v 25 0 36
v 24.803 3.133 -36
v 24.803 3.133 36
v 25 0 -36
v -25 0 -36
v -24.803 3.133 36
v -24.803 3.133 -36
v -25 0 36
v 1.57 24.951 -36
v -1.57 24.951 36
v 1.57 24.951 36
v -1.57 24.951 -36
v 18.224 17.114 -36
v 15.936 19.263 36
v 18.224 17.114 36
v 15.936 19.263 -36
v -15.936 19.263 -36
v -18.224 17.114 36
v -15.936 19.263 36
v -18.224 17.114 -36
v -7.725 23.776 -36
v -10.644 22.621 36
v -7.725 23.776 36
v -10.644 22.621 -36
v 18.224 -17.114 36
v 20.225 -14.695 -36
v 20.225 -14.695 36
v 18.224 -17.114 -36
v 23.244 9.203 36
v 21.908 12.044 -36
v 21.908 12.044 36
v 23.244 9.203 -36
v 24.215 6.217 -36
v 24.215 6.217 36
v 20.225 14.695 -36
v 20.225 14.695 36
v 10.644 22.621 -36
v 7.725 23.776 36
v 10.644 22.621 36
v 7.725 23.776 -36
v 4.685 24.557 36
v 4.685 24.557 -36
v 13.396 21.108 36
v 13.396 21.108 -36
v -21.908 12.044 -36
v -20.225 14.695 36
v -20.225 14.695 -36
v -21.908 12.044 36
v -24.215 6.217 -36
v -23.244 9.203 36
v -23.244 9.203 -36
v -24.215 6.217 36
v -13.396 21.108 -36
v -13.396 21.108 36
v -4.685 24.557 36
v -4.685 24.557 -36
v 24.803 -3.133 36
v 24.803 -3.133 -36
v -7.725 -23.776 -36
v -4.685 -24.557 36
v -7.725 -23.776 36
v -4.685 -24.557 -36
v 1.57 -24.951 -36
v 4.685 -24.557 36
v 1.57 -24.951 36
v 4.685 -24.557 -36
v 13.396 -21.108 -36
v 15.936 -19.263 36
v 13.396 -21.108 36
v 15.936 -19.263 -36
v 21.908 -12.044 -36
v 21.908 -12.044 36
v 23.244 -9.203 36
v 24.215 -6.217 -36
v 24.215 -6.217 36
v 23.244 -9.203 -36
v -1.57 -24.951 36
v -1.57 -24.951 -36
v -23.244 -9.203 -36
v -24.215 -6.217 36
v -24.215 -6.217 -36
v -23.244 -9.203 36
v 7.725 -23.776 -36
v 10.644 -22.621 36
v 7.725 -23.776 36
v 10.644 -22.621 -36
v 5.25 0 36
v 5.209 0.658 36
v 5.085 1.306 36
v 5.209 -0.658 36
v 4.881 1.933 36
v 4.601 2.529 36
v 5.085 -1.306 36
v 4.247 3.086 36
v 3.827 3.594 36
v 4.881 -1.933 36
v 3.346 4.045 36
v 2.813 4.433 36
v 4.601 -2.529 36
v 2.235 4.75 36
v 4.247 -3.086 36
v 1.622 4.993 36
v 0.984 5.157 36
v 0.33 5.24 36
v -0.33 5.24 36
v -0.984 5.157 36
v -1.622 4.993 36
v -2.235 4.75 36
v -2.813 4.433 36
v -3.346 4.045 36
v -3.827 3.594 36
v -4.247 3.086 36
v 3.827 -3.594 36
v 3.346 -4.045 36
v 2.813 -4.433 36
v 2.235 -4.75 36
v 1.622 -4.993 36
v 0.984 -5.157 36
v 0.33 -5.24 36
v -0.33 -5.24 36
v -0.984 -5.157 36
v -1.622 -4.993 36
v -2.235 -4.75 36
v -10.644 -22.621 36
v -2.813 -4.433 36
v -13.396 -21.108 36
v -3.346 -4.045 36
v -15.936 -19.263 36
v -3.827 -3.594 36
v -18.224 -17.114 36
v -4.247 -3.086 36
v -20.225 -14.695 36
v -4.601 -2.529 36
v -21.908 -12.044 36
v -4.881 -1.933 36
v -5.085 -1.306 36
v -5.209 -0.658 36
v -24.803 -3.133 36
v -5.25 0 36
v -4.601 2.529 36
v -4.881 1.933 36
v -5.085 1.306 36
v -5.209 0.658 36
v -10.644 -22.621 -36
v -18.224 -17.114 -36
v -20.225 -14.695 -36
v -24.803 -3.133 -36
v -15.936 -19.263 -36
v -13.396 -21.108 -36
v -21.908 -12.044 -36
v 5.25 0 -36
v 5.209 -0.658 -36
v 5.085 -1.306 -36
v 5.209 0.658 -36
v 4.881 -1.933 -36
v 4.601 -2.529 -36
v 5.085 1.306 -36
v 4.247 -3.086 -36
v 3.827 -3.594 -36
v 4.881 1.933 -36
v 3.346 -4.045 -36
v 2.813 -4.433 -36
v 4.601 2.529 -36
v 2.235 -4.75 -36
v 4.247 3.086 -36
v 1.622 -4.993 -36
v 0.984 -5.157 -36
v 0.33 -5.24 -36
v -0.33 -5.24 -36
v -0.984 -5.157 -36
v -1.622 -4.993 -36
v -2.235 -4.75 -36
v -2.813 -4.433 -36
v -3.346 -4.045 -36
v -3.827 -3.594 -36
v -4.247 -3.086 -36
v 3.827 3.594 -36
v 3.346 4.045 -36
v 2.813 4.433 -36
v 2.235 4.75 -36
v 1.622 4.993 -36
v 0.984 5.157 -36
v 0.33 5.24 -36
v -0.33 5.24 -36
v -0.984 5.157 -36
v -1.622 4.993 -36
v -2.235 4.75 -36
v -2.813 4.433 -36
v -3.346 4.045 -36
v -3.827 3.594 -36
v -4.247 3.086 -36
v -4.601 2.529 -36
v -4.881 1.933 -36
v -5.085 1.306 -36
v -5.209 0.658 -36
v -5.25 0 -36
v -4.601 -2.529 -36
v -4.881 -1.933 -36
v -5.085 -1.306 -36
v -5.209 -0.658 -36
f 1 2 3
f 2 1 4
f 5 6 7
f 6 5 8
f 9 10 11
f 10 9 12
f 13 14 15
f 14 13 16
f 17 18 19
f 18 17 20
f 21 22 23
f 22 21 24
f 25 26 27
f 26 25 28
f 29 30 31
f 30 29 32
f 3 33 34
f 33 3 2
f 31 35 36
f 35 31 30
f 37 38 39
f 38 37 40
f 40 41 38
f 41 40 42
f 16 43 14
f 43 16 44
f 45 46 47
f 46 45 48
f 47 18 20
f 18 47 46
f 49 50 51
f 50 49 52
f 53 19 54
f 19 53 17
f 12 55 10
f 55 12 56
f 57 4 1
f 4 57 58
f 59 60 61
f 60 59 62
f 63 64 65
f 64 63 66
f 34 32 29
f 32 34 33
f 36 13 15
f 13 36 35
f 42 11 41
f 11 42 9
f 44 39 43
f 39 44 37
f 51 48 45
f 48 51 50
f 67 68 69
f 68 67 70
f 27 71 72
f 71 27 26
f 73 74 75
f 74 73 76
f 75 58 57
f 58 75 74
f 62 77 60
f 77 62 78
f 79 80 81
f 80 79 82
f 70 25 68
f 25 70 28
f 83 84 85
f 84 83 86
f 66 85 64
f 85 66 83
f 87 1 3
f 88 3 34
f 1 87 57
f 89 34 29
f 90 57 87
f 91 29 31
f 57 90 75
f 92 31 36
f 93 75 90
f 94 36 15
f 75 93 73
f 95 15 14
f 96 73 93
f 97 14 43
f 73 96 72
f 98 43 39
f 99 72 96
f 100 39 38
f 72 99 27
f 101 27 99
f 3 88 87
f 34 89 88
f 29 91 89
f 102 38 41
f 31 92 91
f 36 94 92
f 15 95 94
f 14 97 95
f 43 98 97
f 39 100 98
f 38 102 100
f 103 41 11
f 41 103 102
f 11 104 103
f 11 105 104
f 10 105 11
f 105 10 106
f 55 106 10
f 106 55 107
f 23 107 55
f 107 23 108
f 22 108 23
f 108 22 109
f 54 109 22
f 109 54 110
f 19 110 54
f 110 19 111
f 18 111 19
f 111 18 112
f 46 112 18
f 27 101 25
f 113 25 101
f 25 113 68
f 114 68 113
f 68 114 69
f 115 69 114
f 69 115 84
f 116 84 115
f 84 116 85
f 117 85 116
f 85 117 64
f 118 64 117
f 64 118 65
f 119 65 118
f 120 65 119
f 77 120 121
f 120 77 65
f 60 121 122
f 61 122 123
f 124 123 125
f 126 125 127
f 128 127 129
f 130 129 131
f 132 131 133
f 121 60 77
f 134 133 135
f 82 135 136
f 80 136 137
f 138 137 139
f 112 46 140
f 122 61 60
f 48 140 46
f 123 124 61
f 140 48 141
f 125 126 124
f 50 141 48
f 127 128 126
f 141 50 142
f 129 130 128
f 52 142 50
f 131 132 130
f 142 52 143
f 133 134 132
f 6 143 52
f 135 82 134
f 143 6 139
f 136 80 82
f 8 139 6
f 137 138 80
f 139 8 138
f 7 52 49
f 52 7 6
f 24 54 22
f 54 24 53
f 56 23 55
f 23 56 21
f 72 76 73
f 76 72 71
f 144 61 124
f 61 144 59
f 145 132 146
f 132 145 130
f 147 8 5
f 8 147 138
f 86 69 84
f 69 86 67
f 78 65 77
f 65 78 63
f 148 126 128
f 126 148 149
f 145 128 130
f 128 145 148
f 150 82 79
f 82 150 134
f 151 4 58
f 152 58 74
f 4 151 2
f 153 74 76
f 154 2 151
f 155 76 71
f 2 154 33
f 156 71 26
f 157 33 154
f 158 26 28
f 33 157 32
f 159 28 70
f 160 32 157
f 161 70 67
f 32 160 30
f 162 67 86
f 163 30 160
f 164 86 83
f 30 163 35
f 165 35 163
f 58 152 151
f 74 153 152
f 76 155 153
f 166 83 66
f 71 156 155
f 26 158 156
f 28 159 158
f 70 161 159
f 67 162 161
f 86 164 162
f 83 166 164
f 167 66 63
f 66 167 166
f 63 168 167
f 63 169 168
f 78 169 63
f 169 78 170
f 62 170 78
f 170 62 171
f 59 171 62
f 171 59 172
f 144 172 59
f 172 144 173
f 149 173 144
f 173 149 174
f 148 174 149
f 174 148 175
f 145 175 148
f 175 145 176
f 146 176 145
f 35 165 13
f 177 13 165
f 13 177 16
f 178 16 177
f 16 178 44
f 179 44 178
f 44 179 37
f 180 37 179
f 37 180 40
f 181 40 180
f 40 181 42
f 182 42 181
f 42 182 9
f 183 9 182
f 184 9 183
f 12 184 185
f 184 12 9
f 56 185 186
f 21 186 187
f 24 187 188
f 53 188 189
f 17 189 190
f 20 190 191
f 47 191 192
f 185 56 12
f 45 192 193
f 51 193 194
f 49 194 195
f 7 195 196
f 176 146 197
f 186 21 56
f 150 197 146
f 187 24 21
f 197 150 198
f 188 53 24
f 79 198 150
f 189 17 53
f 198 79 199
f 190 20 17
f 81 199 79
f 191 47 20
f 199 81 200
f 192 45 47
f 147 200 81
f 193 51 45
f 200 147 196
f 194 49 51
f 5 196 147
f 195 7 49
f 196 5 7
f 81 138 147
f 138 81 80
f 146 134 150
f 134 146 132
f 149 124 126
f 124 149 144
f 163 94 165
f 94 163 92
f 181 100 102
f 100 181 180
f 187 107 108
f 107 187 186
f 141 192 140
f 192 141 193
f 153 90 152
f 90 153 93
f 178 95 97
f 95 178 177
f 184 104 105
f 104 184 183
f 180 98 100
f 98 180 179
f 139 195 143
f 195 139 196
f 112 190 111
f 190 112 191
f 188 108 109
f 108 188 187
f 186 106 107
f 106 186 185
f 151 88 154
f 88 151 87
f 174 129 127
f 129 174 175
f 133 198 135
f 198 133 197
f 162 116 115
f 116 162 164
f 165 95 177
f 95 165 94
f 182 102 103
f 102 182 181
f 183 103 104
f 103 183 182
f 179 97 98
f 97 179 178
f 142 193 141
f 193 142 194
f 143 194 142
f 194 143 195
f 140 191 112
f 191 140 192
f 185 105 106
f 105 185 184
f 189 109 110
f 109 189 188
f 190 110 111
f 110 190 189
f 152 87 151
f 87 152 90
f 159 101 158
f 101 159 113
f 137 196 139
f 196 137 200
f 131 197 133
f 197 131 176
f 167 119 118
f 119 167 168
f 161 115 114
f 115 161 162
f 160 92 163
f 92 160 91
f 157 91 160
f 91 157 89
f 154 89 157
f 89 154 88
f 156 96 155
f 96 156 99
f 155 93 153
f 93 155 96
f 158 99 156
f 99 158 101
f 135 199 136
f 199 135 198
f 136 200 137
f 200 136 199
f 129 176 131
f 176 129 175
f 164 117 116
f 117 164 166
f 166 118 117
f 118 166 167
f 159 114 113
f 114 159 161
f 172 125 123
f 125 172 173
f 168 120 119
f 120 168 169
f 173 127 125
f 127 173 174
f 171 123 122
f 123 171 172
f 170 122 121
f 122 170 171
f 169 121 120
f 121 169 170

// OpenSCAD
$fn = 50;


difference() {
	union() {
		translate(v = [0, 0, -36.0000000000]) {
			cylinder(h = 72, r = 25.0000000000);
		}
	}
	union() {
		translate(v = [0, 0, -100.0000000000]) {
			cylinder(h = 200, r = 5.2500000000);
		}
	}
}
